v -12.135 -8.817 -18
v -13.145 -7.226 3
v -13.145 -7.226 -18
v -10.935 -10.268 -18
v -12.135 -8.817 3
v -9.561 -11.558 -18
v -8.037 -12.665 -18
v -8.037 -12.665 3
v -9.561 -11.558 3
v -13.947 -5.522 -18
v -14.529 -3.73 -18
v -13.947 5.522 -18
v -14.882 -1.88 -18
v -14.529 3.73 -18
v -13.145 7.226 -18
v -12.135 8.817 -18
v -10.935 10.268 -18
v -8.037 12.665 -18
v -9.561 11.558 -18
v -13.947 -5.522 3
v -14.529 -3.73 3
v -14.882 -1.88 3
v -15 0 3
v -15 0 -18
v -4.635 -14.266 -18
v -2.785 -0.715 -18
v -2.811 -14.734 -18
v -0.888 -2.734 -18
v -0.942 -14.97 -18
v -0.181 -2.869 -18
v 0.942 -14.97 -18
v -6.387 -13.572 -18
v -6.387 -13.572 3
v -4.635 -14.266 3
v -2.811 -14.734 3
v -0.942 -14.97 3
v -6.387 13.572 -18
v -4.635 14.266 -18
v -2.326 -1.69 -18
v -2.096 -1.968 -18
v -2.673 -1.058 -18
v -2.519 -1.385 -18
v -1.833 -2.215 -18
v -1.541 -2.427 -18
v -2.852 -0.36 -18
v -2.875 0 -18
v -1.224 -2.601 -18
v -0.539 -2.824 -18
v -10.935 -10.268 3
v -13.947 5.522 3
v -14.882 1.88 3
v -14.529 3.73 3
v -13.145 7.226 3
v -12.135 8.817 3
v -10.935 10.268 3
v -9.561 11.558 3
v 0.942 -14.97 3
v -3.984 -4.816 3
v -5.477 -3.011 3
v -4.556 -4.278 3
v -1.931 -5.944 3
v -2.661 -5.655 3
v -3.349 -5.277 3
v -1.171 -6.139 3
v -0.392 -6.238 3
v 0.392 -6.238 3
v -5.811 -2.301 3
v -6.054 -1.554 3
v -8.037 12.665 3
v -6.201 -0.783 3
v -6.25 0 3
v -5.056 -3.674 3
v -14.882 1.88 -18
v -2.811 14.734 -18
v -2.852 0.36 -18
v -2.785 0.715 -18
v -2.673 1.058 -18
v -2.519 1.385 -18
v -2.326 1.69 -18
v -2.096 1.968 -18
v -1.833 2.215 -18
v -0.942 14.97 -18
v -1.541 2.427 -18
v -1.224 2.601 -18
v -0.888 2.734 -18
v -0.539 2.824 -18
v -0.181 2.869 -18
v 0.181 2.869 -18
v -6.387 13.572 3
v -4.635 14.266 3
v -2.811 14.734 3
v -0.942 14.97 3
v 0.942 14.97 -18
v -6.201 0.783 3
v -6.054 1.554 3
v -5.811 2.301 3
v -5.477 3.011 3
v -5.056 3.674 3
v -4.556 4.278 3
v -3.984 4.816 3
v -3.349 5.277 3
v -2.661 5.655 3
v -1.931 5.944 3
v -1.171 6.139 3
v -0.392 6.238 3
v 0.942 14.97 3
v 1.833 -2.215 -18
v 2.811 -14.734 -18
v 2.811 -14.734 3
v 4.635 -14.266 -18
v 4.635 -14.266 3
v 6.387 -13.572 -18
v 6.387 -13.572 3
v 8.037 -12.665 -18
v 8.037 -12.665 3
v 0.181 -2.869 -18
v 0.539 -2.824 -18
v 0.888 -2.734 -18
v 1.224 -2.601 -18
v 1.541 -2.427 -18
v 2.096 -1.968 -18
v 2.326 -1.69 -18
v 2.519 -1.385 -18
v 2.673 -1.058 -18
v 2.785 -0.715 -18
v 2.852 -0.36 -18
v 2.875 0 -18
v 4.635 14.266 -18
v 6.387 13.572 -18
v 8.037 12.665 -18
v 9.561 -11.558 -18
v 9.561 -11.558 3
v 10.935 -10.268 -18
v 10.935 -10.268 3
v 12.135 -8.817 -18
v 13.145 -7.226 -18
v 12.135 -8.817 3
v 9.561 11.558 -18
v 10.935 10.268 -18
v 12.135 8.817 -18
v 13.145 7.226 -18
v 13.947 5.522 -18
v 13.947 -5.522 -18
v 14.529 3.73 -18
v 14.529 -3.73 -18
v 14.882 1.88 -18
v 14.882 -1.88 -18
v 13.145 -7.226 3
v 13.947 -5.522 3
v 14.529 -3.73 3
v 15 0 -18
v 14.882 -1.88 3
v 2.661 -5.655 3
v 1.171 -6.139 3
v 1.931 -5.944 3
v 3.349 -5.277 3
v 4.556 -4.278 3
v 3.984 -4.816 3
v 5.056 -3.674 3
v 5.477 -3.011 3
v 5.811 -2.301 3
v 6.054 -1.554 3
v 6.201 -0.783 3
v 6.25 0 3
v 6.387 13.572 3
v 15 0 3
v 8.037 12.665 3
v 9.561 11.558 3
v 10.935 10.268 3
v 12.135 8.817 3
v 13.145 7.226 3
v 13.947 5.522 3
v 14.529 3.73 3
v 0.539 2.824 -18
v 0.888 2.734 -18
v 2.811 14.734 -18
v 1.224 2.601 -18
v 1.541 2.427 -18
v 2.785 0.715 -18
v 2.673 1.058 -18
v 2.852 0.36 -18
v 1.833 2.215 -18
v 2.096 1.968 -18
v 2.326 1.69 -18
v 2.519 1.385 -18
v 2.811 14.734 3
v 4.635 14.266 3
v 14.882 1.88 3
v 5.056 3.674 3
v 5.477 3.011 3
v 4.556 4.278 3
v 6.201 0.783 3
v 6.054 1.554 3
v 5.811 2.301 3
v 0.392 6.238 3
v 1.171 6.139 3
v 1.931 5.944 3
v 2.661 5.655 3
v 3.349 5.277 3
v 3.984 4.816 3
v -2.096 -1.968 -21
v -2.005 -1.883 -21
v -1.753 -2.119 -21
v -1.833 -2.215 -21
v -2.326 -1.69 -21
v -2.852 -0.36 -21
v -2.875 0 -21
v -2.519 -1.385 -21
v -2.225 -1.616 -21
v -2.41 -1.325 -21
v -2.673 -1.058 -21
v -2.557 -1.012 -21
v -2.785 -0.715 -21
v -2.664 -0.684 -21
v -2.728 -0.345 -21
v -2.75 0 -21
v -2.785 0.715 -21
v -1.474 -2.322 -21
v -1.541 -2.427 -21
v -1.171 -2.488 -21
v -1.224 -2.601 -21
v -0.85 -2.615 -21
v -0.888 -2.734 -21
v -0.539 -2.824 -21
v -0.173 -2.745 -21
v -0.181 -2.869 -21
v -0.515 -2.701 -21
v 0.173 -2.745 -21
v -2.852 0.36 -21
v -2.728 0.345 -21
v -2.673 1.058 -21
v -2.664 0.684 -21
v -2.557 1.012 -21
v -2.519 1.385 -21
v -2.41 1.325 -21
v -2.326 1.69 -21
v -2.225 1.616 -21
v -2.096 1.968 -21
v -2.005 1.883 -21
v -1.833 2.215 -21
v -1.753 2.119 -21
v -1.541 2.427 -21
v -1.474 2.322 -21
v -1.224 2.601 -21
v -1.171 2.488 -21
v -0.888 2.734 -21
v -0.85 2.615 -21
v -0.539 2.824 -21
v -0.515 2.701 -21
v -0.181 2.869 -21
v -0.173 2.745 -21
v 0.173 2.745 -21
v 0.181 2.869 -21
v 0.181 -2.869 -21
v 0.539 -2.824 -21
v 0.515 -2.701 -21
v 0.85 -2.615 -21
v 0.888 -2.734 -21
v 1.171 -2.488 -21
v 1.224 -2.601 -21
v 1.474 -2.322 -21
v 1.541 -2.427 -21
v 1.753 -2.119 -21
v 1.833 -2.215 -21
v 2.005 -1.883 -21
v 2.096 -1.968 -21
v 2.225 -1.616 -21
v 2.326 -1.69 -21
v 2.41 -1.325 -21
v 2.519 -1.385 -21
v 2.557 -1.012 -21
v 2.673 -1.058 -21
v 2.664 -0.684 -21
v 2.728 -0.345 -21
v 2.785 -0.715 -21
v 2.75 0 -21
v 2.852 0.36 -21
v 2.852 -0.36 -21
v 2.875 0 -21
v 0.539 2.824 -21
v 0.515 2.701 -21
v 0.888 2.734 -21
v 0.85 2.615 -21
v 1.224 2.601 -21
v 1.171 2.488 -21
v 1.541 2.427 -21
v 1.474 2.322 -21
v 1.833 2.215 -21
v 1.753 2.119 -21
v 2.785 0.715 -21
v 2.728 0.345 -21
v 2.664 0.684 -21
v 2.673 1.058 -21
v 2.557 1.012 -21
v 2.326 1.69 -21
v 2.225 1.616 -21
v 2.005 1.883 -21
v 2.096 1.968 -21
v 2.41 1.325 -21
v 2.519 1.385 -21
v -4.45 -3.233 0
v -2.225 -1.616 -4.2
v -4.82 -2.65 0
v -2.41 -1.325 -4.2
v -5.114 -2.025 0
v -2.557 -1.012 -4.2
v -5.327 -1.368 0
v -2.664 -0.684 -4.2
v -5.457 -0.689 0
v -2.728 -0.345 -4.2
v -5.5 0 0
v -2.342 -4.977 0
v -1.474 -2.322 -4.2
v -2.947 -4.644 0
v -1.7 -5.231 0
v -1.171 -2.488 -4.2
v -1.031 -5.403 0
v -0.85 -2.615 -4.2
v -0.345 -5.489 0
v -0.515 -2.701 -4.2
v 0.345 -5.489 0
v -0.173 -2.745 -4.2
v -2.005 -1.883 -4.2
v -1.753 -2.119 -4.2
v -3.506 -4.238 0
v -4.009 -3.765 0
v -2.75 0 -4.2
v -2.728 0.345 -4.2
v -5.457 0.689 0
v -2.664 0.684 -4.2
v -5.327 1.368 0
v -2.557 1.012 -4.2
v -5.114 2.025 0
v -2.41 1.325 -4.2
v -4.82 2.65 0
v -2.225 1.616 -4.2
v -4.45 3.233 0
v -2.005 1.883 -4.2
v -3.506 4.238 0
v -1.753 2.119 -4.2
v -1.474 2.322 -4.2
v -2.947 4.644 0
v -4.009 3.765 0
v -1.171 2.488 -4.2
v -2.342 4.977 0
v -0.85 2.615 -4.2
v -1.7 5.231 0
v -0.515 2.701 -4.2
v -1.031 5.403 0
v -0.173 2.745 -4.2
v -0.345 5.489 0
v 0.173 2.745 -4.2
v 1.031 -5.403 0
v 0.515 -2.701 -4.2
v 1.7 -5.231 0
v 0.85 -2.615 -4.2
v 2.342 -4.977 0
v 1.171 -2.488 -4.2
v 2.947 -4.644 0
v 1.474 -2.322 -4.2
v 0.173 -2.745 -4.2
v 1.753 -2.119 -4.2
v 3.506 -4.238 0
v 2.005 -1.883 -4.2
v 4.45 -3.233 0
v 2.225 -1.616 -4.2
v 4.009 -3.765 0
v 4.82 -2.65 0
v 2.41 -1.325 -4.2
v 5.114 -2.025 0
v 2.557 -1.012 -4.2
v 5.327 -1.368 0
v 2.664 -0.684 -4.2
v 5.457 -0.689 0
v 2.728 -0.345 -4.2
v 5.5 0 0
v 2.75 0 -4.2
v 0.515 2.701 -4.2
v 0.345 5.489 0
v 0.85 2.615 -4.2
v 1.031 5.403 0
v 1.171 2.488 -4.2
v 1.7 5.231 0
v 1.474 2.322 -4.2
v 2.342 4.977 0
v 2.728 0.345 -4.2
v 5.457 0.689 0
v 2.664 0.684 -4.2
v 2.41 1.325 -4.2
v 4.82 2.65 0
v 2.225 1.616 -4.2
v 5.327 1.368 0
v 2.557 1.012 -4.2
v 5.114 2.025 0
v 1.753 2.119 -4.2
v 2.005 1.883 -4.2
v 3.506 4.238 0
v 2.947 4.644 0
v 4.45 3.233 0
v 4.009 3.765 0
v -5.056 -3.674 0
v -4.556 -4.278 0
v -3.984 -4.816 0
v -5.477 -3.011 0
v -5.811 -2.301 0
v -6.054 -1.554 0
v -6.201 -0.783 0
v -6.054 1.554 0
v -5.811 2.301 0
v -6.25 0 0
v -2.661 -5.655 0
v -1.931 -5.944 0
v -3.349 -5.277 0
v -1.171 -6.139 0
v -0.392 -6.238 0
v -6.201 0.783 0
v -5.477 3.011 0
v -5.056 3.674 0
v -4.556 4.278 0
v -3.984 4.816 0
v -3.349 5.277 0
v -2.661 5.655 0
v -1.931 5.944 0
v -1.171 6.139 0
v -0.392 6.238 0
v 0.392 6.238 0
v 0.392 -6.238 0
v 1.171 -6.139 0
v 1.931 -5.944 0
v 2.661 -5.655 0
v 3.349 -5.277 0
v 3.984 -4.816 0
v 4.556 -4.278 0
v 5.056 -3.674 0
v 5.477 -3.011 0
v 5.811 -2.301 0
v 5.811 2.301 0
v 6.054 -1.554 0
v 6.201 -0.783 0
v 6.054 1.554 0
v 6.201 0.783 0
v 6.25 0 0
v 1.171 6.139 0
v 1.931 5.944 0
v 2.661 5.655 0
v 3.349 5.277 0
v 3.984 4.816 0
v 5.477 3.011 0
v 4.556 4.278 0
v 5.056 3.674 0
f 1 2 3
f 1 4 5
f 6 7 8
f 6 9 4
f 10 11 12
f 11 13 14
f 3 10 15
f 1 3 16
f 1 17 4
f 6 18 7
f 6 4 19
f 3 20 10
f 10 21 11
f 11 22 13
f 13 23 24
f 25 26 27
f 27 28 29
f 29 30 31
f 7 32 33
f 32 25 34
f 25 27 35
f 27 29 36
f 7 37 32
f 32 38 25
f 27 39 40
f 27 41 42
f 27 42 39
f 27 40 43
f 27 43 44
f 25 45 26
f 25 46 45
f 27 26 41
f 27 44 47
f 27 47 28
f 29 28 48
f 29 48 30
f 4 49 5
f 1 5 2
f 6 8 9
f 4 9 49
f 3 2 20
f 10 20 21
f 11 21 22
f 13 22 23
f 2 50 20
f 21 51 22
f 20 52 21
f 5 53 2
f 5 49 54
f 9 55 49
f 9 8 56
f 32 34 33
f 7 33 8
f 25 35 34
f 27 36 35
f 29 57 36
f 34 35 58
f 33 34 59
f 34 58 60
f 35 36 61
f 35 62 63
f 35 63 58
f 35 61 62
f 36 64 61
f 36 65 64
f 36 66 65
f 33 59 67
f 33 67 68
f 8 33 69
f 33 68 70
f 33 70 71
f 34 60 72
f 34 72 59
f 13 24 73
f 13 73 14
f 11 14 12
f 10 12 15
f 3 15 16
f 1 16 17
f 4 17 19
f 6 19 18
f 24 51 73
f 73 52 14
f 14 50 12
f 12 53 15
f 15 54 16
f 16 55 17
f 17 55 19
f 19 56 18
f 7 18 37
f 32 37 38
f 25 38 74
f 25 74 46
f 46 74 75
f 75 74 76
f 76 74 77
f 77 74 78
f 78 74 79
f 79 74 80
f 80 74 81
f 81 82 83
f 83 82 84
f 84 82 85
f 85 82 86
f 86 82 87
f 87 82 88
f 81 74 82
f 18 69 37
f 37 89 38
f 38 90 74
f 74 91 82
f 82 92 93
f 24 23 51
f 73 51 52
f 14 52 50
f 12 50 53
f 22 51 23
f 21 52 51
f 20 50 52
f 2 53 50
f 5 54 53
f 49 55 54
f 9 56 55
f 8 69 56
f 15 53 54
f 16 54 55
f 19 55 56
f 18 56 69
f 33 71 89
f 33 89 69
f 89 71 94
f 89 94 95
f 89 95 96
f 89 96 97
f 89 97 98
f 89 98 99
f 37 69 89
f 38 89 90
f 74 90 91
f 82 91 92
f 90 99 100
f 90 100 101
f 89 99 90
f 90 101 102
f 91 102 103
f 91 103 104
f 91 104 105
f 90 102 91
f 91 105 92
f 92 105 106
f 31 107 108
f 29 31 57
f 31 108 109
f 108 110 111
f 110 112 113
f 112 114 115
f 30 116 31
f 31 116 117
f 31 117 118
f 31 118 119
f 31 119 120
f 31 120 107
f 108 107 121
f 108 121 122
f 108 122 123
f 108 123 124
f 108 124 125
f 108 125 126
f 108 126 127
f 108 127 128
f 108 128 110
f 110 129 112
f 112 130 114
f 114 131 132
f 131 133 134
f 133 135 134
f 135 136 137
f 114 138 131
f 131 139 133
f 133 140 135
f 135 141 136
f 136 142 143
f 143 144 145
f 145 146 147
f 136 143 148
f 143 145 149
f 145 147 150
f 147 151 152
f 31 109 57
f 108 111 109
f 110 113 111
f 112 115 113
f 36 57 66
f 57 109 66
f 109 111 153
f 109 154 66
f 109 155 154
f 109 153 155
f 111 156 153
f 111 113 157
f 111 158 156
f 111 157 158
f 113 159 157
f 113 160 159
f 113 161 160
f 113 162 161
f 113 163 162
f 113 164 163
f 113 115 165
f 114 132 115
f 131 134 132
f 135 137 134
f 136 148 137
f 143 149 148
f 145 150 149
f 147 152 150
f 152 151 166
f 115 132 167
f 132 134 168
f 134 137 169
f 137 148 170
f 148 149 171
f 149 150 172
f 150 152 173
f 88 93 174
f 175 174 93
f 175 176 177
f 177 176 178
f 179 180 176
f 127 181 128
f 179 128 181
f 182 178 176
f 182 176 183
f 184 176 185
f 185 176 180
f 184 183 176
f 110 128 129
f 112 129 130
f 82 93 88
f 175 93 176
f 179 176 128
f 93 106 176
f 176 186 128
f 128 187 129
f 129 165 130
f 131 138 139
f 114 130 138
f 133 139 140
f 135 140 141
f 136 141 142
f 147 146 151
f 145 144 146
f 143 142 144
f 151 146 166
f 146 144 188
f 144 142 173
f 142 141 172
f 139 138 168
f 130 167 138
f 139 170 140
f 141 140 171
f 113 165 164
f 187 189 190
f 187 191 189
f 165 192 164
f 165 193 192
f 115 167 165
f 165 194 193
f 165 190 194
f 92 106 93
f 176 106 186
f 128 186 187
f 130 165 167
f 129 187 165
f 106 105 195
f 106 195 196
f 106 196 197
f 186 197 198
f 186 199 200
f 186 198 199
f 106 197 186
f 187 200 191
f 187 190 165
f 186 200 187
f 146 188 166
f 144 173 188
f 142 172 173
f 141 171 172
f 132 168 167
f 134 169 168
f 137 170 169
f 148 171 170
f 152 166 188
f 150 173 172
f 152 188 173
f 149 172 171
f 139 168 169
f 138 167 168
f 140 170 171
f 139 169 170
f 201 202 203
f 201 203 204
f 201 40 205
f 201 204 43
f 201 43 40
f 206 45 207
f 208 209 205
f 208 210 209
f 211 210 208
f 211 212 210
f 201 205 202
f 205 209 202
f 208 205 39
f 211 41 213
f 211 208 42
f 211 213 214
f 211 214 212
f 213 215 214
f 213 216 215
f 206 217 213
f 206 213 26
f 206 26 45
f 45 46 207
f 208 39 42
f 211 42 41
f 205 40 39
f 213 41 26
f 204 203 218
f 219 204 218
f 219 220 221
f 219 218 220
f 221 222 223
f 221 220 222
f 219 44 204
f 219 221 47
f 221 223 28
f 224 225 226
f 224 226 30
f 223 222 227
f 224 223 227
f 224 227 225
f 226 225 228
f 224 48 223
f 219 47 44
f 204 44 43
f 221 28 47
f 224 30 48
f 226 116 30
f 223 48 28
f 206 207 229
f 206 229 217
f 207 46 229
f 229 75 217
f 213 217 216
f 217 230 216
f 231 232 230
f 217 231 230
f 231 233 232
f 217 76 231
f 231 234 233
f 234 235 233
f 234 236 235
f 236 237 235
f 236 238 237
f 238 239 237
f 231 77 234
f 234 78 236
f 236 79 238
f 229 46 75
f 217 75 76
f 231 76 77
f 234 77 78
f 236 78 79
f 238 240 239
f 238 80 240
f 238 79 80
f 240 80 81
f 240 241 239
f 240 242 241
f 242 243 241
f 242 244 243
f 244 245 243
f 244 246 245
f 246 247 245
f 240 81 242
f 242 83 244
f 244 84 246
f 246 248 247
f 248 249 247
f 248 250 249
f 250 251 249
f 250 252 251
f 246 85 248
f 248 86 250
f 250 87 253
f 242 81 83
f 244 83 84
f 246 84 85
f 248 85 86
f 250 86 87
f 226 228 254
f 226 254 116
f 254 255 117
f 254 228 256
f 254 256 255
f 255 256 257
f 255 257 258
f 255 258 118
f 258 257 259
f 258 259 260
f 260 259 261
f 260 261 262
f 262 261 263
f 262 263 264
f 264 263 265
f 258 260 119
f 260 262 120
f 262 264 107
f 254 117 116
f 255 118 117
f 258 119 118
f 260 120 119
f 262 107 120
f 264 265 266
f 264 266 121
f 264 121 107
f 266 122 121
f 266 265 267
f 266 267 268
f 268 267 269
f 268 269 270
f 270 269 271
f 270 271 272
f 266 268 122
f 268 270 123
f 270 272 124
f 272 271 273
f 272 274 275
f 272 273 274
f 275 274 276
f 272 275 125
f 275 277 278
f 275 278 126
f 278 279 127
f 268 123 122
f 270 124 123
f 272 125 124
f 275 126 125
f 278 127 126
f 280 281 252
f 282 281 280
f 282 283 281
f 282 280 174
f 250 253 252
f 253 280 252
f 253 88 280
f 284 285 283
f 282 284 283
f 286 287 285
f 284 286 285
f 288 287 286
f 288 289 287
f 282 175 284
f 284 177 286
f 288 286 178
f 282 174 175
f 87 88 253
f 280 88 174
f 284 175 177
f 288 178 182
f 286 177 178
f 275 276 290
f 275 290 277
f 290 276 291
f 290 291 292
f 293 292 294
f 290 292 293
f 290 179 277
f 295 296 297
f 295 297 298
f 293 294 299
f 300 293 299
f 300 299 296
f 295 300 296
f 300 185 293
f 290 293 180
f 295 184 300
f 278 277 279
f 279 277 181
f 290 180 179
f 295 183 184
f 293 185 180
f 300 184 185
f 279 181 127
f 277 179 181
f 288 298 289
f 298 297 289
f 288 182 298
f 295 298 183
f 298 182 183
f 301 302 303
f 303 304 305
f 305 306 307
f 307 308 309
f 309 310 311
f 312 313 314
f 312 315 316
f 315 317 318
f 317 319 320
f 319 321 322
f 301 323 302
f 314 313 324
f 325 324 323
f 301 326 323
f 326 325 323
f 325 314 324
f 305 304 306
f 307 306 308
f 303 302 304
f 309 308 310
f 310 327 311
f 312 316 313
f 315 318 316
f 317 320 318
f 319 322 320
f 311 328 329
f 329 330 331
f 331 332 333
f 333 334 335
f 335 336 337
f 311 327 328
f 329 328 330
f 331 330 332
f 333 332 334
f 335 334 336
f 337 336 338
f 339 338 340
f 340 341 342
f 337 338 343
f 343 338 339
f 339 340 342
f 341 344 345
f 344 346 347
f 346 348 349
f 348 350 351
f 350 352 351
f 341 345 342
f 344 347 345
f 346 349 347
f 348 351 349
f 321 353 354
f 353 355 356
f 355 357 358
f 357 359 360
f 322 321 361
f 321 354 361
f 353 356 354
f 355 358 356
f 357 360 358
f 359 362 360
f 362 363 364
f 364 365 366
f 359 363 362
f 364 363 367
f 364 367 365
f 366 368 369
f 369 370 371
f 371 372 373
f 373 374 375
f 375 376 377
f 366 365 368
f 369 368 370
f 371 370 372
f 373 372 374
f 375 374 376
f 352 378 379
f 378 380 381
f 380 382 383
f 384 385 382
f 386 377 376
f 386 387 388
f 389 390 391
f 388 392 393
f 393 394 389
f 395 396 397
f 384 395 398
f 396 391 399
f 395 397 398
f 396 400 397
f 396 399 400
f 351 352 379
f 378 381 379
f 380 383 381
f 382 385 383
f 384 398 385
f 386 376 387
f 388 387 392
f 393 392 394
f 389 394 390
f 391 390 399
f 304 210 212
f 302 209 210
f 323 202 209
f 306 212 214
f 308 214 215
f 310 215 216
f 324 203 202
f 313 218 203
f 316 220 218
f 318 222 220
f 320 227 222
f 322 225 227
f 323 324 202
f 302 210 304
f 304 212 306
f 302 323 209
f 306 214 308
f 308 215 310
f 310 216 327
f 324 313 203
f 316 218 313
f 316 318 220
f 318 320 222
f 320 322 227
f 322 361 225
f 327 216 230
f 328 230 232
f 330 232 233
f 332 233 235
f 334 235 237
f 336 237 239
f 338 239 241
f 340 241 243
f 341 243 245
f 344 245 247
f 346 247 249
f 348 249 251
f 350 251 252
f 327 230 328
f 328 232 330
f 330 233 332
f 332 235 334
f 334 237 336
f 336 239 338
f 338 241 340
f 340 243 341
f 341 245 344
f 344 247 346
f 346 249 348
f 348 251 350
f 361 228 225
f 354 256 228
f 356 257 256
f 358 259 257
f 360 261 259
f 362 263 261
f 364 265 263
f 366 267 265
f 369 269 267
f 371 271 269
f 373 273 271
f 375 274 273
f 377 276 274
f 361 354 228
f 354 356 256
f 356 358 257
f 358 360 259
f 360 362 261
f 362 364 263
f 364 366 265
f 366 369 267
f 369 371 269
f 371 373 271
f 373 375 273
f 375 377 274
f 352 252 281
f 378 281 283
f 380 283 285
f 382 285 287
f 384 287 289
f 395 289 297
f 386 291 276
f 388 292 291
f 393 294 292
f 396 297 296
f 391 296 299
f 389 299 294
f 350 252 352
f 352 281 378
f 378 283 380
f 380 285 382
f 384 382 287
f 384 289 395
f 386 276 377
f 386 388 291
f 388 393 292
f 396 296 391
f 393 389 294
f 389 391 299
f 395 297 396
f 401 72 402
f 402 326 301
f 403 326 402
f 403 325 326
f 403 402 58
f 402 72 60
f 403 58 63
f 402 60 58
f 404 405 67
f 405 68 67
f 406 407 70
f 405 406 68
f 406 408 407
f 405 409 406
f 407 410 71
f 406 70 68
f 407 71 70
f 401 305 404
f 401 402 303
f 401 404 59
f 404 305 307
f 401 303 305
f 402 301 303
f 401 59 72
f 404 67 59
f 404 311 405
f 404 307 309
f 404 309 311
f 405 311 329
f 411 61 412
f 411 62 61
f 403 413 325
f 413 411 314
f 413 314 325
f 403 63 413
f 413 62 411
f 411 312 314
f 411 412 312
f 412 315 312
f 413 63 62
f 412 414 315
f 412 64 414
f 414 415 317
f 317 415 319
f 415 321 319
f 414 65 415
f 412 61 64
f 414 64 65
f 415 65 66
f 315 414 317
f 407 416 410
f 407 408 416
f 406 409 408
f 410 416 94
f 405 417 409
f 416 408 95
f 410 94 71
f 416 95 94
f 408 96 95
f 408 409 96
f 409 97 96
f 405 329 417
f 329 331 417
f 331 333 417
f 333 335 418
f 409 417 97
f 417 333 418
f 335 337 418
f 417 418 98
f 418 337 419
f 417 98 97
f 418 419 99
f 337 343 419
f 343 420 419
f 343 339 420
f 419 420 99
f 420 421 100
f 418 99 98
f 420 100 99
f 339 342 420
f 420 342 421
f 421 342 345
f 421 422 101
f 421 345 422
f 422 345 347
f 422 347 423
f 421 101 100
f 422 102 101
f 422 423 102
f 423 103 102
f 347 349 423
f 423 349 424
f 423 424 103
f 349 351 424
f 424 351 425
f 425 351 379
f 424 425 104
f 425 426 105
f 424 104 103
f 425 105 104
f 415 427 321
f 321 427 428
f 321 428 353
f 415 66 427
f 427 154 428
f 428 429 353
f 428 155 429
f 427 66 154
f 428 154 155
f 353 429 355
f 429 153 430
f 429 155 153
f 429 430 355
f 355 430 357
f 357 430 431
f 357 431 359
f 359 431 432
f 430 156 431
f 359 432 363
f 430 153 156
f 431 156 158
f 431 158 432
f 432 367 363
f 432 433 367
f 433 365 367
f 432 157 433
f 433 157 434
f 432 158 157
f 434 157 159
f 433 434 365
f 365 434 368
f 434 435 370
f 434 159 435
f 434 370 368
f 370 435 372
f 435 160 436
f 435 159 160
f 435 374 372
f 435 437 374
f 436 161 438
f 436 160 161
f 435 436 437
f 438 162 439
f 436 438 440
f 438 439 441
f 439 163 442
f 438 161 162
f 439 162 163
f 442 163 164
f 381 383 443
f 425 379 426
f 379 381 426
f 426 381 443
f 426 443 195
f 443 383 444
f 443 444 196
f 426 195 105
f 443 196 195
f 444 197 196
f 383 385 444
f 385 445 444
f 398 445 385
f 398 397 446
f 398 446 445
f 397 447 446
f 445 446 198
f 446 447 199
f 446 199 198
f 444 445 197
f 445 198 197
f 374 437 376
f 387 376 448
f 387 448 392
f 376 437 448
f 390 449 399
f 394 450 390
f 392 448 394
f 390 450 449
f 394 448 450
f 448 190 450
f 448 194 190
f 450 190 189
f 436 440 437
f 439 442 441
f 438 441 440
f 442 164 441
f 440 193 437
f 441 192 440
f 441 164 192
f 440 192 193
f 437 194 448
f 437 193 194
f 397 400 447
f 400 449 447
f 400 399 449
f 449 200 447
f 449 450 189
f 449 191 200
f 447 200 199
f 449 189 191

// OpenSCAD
$fn = 50;

difference() {
	union() {
		translate(v = [0, 0, -18.0]) {
			cylinder(h = 21, r = 15.0);
		}
		#translate(v = [0, 0, -21.0]) {
			cylinder(h = 21, r = 2.875);
		}
	}
	union() {
		translate(v = [0, 0, 0]) {
			rotate(a = [0, 0, 0]) {
				difference() {
					union() {
						translate(v = [0, 0, -21.0]) {
							cylinder(h = 21, r = 2.25);
						}
						translate(v = [0, 0, -4.2]) {
							cylinder(h = 4.2, r1 = 2.75, r2 = 5.5);
						}
						translate(v = [0, 0, -21.0]) {
							cylinder(h = 21, r = 2.75);
						}
						translate(v = [0, 0, -21.0]) {
							cylinder(h = 21, r = 2.25);
						}
					}
					union();
				}
			}
		}
		#cylinder(h = 3, r = 6.25);
	}
}
